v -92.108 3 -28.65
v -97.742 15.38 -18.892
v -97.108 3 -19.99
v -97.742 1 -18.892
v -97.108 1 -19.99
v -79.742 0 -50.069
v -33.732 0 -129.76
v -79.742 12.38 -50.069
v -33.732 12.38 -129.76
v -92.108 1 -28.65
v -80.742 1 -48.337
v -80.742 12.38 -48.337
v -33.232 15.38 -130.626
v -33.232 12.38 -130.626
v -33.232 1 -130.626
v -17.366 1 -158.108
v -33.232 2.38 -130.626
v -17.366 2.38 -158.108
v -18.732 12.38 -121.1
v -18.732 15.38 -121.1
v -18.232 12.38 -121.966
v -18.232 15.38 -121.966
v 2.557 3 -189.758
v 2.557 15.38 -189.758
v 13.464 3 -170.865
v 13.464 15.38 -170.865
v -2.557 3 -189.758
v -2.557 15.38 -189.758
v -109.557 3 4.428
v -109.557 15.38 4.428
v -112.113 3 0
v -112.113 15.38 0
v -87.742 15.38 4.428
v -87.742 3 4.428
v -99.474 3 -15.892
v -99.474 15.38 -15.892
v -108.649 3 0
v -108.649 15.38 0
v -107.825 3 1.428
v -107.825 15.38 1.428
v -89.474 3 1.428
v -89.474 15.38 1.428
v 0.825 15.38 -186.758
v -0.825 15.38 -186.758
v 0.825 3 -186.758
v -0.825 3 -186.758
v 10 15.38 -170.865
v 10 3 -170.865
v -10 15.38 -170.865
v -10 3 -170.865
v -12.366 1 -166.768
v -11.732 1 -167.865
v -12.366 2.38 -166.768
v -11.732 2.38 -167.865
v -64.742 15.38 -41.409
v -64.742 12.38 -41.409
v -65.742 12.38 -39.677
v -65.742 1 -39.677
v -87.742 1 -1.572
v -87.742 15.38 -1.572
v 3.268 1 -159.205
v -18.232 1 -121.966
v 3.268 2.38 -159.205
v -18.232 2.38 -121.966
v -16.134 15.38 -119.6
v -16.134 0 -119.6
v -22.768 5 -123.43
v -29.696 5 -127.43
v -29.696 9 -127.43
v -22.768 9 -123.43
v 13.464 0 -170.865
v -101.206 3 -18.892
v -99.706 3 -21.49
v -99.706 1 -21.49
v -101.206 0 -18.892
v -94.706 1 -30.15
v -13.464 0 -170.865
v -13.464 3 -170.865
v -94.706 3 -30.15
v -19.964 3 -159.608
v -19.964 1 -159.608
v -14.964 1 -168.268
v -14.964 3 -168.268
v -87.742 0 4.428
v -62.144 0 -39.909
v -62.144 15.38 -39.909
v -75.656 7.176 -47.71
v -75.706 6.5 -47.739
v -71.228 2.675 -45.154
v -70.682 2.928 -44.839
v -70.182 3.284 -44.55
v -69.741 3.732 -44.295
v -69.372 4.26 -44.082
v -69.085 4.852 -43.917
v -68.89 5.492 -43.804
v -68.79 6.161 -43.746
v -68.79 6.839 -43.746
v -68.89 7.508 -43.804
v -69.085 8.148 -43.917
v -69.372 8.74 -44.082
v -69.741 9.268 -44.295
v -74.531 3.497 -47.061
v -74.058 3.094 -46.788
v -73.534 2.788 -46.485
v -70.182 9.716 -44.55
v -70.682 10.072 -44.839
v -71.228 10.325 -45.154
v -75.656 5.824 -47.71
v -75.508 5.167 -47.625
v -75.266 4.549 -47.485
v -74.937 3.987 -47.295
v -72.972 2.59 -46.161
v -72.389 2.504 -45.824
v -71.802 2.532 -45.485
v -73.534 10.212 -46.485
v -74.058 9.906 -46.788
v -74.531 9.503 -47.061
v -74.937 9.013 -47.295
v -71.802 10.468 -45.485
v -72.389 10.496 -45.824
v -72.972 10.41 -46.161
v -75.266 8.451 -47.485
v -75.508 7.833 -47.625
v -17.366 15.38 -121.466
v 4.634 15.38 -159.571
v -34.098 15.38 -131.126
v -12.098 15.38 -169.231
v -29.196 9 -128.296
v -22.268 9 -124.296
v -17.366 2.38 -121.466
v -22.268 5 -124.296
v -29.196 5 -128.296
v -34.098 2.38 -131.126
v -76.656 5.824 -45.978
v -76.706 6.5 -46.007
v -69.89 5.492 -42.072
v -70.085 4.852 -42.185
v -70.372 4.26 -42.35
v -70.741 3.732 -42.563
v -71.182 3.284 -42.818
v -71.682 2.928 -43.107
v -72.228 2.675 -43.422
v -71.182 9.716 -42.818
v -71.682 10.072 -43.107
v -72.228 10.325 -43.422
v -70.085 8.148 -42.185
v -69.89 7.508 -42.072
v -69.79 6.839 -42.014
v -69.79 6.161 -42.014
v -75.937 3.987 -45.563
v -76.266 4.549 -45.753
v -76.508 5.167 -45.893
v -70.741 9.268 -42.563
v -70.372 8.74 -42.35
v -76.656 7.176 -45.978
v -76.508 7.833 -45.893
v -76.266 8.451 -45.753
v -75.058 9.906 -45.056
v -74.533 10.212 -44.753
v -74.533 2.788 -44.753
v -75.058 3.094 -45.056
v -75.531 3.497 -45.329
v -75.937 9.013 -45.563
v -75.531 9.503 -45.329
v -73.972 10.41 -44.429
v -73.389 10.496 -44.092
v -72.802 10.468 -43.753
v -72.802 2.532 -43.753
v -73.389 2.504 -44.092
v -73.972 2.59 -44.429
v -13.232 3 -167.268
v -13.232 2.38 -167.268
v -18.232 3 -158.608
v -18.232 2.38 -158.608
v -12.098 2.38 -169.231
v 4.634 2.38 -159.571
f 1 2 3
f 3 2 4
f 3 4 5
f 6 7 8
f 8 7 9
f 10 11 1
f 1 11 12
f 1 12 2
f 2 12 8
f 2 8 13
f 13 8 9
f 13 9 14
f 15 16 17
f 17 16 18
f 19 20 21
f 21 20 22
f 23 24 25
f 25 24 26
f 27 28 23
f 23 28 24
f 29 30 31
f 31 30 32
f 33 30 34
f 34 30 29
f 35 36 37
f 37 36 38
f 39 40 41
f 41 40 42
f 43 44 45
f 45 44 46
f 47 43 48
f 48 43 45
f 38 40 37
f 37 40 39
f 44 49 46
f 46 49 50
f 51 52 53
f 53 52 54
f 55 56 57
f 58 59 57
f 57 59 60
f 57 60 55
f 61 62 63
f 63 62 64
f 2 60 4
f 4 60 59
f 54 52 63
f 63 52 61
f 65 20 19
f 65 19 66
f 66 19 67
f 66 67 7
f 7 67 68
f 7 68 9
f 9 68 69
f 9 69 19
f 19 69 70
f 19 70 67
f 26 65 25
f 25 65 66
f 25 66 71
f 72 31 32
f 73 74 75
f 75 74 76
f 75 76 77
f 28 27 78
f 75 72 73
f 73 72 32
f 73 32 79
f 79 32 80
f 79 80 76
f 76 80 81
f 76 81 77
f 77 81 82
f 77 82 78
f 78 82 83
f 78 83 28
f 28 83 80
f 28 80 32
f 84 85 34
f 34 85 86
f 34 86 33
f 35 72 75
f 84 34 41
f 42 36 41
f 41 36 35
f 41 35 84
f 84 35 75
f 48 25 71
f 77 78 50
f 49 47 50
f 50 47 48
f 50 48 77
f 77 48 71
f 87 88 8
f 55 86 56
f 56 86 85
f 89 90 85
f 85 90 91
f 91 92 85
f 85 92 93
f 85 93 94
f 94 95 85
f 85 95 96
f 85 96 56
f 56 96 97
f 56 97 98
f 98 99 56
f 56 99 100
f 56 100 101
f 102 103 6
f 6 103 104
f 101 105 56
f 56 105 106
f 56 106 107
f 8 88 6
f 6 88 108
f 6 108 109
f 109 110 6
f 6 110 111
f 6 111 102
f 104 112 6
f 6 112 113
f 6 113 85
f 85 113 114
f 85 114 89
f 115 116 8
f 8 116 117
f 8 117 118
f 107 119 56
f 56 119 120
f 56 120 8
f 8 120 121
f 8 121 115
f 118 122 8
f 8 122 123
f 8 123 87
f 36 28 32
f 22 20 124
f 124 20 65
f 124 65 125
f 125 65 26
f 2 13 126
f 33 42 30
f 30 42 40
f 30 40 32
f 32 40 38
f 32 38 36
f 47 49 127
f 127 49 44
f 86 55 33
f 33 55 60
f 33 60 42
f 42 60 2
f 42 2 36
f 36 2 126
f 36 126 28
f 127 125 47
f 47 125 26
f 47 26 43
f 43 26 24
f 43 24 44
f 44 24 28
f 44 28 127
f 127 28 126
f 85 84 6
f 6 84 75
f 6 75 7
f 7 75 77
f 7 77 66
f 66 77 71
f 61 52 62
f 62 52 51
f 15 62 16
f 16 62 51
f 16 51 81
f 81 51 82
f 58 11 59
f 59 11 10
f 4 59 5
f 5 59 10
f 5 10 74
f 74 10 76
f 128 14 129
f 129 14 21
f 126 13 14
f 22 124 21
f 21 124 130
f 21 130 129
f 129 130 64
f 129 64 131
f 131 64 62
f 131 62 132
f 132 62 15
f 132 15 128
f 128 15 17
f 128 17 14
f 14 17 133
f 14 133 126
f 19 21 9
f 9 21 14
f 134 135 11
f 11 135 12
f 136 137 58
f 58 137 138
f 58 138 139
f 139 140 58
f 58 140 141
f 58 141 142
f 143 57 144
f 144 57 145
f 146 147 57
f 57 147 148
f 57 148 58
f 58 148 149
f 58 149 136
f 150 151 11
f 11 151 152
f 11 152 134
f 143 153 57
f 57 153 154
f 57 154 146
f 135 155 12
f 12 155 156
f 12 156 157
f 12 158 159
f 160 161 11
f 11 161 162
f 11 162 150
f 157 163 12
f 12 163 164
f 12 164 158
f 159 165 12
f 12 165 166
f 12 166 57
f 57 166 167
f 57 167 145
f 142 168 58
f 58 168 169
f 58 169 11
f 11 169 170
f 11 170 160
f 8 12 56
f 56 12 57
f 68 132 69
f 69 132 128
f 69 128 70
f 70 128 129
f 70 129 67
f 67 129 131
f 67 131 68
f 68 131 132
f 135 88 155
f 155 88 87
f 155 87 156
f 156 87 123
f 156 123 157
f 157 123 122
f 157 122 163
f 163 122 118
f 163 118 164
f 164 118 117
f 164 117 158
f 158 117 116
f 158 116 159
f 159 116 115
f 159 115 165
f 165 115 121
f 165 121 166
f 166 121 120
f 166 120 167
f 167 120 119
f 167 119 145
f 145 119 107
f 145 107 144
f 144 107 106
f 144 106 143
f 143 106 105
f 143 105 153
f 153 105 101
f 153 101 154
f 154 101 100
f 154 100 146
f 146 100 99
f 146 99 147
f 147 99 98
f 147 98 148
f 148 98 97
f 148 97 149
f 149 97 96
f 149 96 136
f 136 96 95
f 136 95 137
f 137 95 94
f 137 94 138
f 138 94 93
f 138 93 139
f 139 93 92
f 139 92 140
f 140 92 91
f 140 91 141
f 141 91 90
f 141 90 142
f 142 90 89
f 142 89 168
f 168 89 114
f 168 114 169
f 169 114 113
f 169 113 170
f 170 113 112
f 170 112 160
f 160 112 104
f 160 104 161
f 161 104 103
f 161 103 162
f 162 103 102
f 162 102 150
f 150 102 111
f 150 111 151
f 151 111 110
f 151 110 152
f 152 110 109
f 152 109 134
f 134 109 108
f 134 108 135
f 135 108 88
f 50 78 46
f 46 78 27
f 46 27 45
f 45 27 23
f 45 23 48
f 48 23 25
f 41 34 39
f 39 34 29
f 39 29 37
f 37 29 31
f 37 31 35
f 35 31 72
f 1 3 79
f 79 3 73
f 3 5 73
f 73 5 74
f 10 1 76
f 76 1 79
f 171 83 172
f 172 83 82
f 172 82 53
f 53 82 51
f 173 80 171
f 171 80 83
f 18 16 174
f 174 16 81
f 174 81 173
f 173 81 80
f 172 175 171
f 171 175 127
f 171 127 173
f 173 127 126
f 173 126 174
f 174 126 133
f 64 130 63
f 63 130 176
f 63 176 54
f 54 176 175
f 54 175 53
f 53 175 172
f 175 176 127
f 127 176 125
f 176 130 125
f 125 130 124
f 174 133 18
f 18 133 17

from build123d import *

# Parameters (mm, degrees)
BOSS_EXTRUDE2_DEPTH = 15.38
BOSS_EXTRUDE3_DEPTH = 1
BOSS_EXTRUDE4_DEPTH = 12.38
CUT_EXTRUDE1_DEPTH  = 8.26
SKETCH12_R          = 4
CUT_EXTRUDE2_DEPTH  = 8.26
CUT_EXTRUDE3_DEPTH  = 3
SKETCH16_W          = 10
SKETCH16_H          = 2
CUT_EXTRUDE4_DEPTH  = 3
CUT_EXTRUDE5_DEPTH  = 13


with BuildPart() as part:
    # Sketch1 → Boss-Extrude2 (new body)
    with BuildSketch(Plane(origin=(0, 0, 0), x_dir=(1, 0, 0), z_dir=(0, 1, 0))):
        Polygon((-33.232050802, 130.626242439), (-11.732050802, 167.865334802), (3.267949197, 159.205080764), (-18.232050803, 121.965988402), (-18.732050803, 121.099962998), (-16.133974592, 119.599962998), (13.464101619, 170.865334801), (2.556624332, 189.757639644), (-2.556624322, 189.757639644), (-112.11324865, 2e-09), (-109.556624323, -4.428203228), (-87.74166975, -4.428203228), (-62.14359354, 39.908965344), (-64.74166975, 41.408965344), (-65.74166975, 39.676914536), (-82.74166975, 10.232050807), (-87.74166975, 1.57179677), (-97.741669749, 18.892304845), (-80.741669749, 48.337168573), (-79.741669749, 50.069219381), (-33.732050802, 129.760217035), align=None)
        Polygon((-89.473720558, -1.42820323), (-107.824573519, -1.42820323), (-108.649147039, 0), (-99.473720558, 15.892304845), align=None, mode=Mode.SUBTRACT)
        Polygon((-9.999999996, 170.865334801), (-0.824573515, 186.757639646), (0.824573508, 186.757639646), (10.000000004, 170.865334801), align=None, mode=Mode.SUBTRACT)
    extrude(amount=BOSS_EXTRUDE2_DEPTH)

    # Sketch1<11> → Boss-Extrude3 (add)
    with BuildSketch(Plane(origin=(0, 0, 0), x_dir=(1, 0, 0), z_dir=(0, 1, 0))):
        Polygon((3.267949197, 159.205080764), (-11.732050802, 167.865334802), (-33.232050802, 130.626242439), (-18.232050803, 121.965988402), align=None)
        Polygon((-65.74166975, 39.676914536), (-80.741669749, 48.337168573), (-97.741669749, 18.892304845), (-87.74166975, 1.57179677), align=None)
    extrude(amount=BOSS_EXTRUDE3_DEPTH)

    # Sketch1<12> → Boss-Extrude4 (add)
    with BuildSketch(Plane(origin=(0, 0, 0), x_dir=(1, 0, 0), z_dir=(0, 1, 0))):
        Polygon((-18.232050803, 121.965988402), (-33.232050802, 130.626242439), (-33.732050802, 129.760217035), (-18.732050803, 121.099962998), align=None)
        Polygon((-64.74166975, 41.408965344), (-79.741669749, 50.069219381), (-80.741669749, 48.337168573), (-65.74166975, 39.676914536), align=None)
    extrude(amount=BOSS_EXTRUDE4_DEPTH)

    # Sketch10 → Cut-Extrude1 (cut)
    with BuildSketch(Plane(origin=(47.754809476, 0, -82.713756318), x_dir=(0.8660254037844418, 0, 0.49999999999999456), z_dir=(-0.4999999999999946, 0, 0.8660254037844419))):
        Polygon((-85.432921433, 5), (-81.432921433, 5), (-81.432921433, 9), (-89.432921433, 9), (-89.432921433, 5), align=None)
    extrude(amount=-CUT_EXTRUDE1_DEPTH, mode=Mode.SUBTRACT)

    # Sketch12 → Cut-Extrude2 (cut)
    with BuildSketch(Plane(origin=(1.745190528, 0, -3.022758664), x_dir=(-0.866025403784436, 0, -0.5000000000000047), z_dir=(0.5000000000000047, 0, -0.866025403784436))):
        with Locations((85.432921433, 6.5)):
            Circle(SKETCH12_R)
    extrude(amount=-CUT_EXTRUDE2_DEPTH, mode=Mode.SUBTRACT)

    # Sketch15 → Cut-Extrude3 (cut)
    with BuildSketch(Plane.XZ):
        Polygon((-87.74166975, 4.428203228), (-109.556624323, 4.428203228), (-112.11324865, -2e-09), (-101.205771363, -18.892304845), align=None)
        Polygon((13.464101619, -170.865334801), (2.556624332, -189.757639644), (-2.556624322, -189.757639644), (-13.464101609, -170.865334801), align=None)
    extrude(amount=-CUT_EXTRUDE3_DEPTH, mode=Mode.SUBTRACT)

    # Sketch16 → Cut-Extrude4 (cut)
    with BuildSketch(Plane(origin=(-84.084936489, 0, -48.546460716), x_dir=(-0.4999999999999999, 0, 0.8660254037844386), z_dir=(-0.8660254037844387, 0, -0.49999999999999994))):
        with Locations((-133.242624333, 2)):
            Rectangle(SKETCH16_W, SKETCH16_H)
        with Locations((26.242624323, 2)):
            Rectangle(SKETCH16_W, SKETCH16_H)
    extrude(amount=-CUT_EXTRUDE4_DEPTH, mode=Mode.SUBTRACT)

    # Sketch17 → Cut-Extrude5 (cut)
    with BuildSketch(Plane(origin=(0, 15.38, 0), x_dir=(1, 0, 0), z_dir=(0, 1, 0))):
        Polygon((-18.232050803, 121.965988402), (-17.366025399, 121.465988402), (4.633974601, 159.571106168), (-12.098076205, 169.231360205), (-34.098076205, 131.126242439), (-33.232050802, 130.626242439), align=None)
    extrude(amount=-CUT_EXTRUDE5_DEPTH, mode=Mode.SUBTRACT)


solid = part.part
